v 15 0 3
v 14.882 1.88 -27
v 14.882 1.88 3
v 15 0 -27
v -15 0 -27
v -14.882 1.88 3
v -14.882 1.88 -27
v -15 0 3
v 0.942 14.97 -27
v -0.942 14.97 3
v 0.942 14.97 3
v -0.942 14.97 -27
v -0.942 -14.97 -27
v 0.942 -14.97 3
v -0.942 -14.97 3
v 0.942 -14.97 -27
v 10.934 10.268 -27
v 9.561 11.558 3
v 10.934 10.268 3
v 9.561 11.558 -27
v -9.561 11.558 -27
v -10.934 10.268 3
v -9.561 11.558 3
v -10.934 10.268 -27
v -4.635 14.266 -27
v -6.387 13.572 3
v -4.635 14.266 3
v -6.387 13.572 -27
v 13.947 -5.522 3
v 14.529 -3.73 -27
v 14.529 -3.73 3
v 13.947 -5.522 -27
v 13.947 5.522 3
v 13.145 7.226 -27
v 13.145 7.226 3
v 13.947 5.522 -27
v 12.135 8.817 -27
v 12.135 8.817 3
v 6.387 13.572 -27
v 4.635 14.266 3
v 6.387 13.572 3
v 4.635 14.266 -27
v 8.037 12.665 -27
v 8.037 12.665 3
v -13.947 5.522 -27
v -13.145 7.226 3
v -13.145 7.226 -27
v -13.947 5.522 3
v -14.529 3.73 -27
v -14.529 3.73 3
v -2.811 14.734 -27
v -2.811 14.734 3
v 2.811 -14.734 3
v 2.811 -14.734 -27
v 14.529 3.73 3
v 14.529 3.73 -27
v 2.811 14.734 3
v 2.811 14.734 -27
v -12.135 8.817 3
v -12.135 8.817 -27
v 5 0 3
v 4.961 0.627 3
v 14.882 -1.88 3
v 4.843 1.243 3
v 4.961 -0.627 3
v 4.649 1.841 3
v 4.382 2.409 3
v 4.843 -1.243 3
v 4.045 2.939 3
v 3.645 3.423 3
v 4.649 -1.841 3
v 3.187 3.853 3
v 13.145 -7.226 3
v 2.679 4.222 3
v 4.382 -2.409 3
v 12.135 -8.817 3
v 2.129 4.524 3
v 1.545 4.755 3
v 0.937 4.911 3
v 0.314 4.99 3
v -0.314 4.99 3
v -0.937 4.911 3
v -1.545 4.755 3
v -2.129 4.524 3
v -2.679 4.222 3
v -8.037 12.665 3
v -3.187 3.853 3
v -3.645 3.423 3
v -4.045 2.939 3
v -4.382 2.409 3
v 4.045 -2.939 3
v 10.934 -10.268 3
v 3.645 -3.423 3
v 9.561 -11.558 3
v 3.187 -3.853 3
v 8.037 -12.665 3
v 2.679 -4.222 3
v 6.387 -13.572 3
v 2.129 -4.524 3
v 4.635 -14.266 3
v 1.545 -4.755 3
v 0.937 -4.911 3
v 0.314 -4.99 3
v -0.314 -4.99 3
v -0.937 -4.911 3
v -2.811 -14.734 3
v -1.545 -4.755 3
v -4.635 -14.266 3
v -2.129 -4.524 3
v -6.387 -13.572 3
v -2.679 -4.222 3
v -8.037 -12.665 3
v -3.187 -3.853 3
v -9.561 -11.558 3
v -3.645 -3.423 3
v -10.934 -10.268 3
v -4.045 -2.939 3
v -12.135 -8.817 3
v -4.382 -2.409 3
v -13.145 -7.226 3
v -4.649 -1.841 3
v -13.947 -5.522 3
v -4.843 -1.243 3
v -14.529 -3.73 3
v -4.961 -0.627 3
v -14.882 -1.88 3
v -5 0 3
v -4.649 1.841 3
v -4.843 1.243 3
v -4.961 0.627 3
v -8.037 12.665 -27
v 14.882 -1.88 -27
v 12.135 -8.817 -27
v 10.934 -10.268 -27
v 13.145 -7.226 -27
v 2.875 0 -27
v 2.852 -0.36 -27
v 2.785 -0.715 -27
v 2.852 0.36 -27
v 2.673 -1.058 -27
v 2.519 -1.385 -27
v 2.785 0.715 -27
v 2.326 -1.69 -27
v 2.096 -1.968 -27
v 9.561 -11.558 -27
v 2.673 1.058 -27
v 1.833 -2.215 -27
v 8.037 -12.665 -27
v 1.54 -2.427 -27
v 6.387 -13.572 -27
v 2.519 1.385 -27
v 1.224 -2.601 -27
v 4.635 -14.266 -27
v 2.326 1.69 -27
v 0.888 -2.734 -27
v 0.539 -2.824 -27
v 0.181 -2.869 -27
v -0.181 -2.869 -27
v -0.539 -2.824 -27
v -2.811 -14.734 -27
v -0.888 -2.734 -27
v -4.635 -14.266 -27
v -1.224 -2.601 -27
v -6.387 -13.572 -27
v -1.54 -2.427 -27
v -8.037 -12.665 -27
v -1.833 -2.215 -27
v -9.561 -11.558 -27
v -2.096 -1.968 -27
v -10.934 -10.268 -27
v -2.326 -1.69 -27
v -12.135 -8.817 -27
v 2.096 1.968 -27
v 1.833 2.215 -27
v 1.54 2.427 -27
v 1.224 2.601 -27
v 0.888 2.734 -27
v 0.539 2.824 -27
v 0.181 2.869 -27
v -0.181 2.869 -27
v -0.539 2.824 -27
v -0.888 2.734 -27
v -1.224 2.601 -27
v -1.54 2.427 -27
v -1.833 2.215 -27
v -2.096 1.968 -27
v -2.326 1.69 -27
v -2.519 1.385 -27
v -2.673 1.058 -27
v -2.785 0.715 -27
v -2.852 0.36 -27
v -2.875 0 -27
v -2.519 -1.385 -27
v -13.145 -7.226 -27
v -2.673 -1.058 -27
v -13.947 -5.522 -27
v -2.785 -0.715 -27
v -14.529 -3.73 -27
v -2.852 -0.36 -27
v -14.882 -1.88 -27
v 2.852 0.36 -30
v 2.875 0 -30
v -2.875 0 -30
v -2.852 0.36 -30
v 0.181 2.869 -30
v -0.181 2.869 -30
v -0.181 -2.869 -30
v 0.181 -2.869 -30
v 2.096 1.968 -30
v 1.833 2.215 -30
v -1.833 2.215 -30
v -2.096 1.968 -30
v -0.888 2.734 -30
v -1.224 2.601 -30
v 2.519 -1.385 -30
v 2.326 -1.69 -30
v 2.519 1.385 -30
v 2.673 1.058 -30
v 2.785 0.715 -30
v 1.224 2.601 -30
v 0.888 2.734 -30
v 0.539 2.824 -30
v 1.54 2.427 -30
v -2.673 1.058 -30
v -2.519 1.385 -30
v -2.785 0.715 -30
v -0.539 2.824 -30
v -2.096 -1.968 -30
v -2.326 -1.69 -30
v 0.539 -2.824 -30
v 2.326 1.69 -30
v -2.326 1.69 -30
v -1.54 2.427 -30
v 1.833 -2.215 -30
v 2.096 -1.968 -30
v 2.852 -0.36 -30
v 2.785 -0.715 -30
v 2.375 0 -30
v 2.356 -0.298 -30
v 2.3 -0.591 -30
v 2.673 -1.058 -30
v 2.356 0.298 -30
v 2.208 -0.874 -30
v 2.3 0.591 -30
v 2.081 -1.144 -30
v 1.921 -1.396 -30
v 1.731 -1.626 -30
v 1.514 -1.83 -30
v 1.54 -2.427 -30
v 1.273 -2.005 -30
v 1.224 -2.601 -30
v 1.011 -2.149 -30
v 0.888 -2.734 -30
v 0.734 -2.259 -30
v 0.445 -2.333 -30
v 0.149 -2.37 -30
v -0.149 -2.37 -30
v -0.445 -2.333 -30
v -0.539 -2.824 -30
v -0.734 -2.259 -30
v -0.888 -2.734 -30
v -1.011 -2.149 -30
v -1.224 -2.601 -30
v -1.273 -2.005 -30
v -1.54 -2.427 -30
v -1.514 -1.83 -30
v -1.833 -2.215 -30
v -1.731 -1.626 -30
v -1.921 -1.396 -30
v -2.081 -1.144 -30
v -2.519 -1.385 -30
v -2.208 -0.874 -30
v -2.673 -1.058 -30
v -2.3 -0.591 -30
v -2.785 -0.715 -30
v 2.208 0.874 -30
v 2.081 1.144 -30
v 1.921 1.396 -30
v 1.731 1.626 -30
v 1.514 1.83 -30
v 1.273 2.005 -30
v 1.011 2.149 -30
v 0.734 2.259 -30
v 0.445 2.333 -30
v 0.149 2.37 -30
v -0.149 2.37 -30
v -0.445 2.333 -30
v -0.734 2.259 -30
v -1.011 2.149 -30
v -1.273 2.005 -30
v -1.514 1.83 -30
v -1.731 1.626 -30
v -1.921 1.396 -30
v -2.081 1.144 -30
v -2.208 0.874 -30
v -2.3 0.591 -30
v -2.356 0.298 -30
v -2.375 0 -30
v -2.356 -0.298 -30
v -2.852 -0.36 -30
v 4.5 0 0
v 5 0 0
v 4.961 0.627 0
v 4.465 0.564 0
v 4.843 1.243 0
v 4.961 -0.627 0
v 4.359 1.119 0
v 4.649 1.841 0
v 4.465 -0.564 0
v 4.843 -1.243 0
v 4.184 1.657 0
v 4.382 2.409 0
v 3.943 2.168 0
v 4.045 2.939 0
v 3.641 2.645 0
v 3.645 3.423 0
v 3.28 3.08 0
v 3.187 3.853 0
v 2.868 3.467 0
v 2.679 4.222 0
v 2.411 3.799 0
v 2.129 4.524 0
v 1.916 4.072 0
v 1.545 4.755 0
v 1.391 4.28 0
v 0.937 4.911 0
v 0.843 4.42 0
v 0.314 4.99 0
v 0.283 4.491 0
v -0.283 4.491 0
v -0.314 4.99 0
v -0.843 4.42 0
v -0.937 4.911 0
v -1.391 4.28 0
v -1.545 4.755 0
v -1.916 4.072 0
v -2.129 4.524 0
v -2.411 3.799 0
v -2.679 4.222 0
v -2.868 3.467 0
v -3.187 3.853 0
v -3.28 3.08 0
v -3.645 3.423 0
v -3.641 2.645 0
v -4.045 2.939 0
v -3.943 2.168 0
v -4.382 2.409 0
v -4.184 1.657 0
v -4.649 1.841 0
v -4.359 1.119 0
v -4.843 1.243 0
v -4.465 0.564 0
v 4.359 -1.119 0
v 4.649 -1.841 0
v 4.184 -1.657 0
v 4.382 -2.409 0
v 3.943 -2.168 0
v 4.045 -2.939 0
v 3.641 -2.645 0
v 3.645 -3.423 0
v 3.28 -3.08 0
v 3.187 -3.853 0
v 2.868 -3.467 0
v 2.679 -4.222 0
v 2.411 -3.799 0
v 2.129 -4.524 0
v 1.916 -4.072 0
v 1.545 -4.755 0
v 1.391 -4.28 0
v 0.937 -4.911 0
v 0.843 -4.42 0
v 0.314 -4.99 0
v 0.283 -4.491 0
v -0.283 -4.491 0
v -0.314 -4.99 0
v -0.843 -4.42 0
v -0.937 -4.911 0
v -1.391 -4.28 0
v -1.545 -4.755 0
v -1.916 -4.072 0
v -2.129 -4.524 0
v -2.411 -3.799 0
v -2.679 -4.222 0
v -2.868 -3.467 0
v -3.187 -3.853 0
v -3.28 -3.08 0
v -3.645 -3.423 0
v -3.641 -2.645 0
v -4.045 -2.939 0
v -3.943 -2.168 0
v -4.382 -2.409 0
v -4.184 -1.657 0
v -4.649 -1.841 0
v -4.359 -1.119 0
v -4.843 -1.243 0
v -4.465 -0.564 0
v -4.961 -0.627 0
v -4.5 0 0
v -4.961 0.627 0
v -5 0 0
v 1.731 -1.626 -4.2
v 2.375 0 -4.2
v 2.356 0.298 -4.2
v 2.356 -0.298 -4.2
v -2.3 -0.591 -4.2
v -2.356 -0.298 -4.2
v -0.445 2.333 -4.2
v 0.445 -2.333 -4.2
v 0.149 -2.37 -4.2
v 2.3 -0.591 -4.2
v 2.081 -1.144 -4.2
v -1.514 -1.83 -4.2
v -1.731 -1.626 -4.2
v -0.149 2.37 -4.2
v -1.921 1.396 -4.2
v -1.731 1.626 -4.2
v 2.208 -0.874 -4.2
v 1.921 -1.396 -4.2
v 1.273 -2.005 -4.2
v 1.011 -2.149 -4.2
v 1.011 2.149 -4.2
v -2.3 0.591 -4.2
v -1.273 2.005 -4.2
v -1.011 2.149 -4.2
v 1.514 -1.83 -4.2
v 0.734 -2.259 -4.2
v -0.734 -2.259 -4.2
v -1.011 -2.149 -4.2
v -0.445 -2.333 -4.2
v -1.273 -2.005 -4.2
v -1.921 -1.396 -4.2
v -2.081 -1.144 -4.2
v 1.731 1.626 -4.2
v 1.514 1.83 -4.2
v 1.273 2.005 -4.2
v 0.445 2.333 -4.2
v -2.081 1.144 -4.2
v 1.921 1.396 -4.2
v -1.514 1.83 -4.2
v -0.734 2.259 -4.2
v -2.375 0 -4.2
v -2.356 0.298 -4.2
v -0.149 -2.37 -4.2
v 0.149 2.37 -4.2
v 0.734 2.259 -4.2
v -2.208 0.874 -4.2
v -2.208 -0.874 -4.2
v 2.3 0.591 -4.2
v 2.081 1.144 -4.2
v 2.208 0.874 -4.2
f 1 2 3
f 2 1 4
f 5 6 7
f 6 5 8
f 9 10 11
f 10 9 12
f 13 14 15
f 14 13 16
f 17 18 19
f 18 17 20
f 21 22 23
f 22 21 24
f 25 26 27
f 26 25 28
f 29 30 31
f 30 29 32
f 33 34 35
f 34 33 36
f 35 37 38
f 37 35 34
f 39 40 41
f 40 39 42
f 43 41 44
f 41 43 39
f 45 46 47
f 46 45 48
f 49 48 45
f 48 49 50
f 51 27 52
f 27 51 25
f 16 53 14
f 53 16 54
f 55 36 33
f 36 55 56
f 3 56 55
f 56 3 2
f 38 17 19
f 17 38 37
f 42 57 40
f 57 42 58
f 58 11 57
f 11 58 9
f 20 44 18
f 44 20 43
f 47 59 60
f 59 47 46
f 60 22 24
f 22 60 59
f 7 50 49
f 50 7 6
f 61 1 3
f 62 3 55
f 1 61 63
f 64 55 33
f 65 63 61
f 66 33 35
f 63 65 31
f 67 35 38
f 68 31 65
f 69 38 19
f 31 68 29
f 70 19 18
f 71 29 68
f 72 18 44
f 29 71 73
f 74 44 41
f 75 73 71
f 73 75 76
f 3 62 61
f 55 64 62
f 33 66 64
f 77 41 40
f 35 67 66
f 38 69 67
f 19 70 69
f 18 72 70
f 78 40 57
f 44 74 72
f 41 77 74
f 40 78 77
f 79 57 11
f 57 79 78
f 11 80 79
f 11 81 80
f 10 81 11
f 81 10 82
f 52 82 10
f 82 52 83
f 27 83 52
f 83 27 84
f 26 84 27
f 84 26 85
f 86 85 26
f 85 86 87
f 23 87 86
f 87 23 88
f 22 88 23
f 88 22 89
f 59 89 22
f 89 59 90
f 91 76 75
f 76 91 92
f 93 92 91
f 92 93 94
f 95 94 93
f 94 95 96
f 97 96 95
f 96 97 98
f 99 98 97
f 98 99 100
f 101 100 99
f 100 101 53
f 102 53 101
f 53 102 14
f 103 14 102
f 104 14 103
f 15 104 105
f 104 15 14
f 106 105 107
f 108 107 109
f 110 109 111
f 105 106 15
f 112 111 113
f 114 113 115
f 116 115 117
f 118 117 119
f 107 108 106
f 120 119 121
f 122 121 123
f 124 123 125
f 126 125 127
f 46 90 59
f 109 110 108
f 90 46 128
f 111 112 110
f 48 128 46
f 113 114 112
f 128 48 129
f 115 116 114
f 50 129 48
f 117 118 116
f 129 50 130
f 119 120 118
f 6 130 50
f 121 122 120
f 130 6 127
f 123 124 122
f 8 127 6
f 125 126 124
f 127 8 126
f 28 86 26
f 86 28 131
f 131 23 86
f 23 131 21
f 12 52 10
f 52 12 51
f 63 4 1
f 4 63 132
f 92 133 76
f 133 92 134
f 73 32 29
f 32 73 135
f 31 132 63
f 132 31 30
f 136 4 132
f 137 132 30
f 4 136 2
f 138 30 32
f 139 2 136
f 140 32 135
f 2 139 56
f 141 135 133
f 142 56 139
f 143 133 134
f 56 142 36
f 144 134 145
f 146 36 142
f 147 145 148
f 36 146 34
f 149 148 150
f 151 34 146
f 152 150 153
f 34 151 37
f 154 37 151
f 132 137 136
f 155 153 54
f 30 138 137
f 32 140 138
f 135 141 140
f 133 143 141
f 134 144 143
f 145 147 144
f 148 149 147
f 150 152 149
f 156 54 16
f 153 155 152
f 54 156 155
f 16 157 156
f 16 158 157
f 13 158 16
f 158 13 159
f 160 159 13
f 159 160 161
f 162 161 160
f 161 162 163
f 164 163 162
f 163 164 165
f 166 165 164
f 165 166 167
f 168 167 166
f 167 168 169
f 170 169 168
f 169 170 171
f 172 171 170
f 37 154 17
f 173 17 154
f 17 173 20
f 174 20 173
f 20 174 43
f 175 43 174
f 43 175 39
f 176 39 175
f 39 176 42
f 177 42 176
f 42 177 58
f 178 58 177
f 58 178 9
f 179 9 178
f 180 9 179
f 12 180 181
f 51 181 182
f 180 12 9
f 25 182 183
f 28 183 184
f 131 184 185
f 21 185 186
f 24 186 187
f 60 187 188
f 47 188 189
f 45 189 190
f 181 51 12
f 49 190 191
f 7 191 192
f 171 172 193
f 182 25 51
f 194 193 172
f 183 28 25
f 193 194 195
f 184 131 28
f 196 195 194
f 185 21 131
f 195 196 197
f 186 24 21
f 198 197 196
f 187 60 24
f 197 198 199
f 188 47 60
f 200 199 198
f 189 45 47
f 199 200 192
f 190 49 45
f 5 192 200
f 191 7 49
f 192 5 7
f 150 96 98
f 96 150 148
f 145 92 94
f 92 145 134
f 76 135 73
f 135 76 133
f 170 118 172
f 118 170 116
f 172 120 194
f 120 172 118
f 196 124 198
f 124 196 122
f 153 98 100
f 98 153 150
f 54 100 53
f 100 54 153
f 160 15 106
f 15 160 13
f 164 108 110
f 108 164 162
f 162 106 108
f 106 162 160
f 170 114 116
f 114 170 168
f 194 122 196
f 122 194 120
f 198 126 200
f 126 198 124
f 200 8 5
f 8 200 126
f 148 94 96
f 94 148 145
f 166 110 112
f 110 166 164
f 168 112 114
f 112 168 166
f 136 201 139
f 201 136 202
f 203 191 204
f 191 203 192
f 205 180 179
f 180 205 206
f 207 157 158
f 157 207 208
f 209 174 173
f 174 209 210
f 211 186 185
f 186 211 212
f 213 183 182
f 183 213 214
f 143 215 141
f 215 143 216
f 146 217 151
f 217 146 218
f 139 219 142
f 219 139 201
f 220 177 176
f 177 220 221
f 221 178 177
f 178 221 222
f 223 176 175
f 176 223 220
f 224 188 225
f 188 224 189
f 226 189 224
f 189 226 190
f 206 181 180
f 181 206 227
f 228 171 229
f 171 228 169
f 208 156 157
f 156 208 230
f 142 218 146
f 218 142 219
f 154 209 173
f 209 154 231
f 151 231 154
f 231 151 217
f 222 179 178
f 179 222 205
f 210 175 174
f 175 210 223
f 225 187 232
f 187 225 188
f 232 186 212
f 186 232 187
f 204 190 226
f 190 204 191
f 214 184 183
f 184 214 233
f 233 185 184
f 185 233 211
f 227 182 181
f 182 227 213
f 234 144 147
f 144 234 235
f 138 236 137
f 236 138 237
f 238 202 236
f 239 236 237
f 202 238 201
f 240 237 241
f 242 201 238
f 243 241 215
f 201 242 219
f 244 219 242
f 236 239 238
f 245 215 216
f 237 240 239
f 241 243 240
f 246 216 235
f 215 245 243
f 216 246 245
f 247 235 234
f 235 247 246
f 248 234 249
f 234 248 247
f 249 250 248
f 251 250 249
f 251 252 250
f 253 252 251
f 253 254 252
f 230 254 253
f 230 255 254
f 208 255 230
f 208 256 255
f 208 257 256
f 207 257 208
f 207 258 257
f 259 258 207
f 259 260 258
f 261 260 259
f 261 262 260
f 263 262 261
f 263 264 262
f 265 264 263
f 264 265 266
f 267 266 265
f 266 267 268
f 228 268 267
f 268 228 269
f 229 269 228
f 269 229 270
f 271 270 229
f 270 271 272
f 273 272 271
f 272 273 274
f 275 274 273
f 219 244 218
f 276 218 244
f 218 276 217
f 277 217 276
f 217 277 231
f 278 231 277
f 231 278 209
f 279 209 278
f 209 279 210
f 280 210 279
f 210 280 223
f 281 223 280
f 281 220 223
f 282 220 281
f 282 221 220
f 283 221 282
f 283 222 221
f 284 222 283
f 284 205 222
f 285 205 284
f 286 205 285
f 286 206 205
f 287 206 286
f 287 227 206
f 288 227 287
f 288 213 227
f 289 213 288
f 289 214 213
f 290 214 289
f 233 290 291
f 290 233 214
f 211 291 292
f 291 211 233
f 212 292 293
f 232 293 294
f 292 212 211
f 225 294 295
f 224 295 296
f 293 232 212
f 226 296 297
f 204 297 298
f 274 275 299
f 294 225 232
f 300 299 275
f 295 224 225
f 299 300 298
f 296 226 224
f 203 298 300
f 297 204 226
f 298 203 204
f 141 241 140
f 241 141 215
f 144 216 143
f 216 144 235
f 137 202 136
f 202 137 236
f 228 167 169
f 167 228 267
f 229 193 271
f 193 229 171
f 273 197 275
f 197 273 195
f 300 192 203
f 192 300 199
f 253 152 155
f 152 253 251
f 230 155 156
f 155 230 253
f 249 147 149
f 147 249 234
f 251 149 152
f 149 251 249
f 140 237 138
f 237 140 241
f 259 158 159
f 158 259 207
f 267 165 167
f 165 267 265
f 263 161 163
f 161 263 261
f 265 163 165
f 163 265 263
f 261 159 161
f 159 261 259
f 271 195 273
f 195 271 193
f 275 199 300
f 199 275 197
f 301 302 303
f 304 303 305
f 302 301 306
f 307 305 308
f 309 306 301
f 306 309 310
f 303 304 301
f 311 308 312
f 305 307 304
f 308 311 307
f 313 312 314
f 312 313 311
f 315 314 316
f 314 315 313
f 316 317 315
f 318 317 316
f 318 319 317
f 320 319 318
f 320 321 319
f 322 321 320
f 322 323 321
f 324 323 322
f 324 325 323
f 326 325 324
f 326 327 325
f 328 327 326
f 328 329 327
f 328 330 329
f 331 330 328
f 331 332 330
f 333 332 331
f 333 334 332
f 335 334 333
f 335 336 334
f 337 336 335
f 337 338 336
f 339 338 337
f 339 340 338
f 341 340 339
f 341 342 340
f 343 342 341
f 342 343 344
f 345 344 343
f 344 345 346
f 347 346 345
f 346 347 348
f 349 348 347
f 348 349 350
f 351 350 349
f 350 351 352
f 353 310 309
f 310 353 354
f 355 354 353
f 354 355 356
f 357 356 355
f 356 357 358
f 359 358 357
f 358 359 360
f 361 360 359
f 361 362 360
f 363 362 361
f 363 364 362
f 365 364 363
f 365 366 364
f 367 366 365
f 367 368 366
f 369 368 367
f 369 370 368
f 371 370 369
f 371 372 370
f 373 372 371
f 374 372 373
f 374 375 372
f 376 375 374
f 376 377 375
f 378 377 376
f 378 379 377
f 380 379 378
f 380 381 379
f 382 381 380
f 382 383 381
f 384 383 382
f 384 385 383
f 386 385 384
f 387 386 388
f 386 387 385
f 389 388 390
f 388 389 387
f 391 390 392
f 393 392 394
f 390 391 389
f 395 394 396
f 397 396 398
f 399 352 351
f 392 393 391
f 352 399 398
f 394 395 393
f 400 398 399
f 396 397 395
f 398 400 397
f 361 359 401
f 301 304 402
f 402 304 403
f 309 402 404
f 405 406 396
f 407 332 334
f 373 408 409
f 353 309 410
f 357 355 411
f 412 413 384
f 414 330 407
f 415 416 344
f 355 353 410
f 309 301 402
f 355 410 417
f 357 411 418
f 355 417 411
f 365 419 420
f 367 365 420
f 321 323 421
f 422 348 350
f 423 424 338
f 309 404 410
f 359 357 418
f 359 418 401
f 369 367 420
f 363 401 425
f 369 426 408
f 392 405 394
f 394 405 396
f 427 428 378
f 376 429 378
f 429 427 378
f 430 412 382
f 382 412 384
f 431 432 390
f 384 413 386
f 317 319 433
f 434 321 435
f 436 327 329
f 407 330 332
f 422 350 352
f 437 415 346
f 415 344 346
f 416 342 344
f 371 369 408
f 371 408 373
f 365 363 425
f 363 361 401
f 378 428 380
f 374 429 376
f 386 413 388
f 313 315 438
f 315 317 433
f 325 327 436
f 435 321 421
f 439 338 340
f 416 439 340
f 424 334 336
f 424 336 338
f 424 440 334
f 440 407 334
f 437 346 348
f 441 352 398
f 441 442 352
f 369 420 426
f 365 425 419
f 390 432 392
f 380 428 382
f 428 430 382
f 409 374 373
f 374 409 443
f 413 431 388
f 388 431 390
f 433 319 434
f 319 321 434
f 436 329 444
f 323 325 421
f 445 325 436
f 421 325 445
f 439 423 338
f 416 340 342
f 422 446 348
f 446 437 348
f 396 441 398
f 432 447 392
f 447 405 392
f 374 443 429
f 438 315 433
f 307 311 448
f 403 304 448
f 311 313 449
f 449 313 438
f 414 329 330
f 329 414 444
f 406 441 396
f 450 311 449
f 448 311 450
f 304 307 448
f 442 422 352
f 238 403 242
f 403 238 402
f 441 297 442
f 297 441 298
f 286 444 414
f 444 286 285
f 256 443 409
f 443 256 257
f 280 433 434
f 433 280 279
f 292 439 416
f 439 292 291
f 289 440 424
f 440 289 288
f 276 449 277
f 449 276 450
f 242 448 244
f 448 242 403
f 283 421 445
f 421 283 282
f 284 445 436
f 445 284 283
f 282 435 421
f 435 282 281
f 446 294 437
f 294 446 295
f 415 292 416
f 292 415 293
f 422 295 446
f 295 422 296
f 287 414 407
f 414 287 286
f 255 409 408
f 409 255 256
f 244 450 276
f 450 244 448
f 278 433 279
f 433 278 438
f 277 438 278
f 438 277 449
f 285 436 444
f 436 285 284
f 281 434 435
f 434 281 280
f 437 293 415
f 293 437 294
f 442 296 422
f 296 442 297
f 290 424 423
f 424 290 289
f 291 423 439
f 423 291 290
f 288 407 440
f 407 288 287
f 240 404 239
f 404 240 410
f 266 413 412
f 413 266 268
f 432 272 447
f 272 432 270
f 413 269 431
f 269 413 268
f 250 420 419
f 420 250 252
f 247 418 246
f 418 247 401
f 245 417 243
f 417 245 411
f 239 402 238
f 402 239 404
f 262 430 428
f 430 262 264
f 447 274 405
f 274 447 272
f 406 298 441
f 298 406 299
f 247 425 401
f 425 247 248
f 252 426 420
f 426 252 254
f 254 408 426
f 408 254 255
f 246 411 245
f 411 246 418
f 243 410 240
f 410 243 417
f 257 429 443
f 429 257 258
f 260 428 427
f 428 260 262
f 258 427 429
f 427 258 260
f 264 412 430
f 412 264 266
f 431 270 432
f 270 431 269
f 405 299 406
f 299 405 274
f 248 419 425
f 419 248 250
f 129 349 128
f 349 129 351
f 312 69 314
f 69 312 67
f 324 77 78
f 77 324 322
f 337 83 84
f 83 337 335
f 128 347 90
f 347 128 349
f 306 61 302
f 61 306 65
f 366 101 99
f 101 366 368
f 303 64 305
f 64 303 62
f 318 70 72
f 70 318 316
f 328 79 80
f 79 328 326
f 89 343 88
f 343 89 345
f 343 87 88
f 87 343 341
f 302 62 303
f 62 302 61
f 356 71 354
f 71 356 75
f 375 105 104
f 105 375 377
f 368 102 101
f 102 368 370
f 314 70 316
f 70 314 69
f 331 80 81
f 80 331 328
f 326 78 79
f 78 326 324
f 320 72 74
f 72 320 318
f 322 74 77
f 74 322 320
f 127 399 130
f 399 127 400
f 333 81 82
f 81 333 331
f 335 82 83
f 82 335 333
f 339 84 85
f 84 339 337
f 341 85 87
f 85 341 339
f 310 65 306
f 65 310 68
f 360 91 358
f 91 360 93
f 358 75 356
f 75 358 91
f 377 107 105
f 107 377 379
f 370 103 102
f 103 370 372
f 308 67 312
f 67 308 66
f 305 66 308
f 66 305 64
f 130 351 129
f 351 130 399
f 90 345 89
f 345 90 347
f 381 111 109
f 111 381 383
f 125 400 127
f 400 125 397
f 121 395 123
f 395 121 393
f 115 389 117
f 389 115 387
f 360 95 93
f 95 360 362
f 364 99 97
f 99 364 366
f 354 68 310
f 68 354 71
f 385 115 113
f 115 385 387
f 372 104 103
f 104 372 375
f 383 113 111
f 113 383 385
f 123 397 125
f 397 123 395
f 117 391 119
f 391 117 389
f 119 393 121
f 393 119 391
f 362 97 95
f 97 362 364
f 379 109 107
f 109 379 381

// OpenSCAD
$fn = 50;

difference() {
	union() {
		translate(v = [0, 0, -27.0]) {
			cylinder(h = 30, r = 15.0);
		}
		#translate(v = [0, 0, -30.0]) {
			cylinder(h = 30, r = 2.875);
		}
	}
	union() {
		translate(v = [0, 0, 0]) {
			rotate(a = [0, 0, 0]) {
				difference() {
					union() {
						translate(v = [0, 0, -30.0]) {
							cylinder(h = 30, r = 2.25);
						}
						translate(v = [0, 0, -4.2]) {
							cylinder(h = 4.2, r1 = 2.375, r2 = 4.5);
						}
						translate(v = [0, 0, -30.0]) {
							cylinder(h = 30, r = 2.375);
						}
						translate(v = [0, 0, -30.0]) {
							cylinder(h = 30, r = 2.25);
						}
					}
					union();
				}
			}
		}
		#cylinder(h = 3, r = 5.0);
	}
}
